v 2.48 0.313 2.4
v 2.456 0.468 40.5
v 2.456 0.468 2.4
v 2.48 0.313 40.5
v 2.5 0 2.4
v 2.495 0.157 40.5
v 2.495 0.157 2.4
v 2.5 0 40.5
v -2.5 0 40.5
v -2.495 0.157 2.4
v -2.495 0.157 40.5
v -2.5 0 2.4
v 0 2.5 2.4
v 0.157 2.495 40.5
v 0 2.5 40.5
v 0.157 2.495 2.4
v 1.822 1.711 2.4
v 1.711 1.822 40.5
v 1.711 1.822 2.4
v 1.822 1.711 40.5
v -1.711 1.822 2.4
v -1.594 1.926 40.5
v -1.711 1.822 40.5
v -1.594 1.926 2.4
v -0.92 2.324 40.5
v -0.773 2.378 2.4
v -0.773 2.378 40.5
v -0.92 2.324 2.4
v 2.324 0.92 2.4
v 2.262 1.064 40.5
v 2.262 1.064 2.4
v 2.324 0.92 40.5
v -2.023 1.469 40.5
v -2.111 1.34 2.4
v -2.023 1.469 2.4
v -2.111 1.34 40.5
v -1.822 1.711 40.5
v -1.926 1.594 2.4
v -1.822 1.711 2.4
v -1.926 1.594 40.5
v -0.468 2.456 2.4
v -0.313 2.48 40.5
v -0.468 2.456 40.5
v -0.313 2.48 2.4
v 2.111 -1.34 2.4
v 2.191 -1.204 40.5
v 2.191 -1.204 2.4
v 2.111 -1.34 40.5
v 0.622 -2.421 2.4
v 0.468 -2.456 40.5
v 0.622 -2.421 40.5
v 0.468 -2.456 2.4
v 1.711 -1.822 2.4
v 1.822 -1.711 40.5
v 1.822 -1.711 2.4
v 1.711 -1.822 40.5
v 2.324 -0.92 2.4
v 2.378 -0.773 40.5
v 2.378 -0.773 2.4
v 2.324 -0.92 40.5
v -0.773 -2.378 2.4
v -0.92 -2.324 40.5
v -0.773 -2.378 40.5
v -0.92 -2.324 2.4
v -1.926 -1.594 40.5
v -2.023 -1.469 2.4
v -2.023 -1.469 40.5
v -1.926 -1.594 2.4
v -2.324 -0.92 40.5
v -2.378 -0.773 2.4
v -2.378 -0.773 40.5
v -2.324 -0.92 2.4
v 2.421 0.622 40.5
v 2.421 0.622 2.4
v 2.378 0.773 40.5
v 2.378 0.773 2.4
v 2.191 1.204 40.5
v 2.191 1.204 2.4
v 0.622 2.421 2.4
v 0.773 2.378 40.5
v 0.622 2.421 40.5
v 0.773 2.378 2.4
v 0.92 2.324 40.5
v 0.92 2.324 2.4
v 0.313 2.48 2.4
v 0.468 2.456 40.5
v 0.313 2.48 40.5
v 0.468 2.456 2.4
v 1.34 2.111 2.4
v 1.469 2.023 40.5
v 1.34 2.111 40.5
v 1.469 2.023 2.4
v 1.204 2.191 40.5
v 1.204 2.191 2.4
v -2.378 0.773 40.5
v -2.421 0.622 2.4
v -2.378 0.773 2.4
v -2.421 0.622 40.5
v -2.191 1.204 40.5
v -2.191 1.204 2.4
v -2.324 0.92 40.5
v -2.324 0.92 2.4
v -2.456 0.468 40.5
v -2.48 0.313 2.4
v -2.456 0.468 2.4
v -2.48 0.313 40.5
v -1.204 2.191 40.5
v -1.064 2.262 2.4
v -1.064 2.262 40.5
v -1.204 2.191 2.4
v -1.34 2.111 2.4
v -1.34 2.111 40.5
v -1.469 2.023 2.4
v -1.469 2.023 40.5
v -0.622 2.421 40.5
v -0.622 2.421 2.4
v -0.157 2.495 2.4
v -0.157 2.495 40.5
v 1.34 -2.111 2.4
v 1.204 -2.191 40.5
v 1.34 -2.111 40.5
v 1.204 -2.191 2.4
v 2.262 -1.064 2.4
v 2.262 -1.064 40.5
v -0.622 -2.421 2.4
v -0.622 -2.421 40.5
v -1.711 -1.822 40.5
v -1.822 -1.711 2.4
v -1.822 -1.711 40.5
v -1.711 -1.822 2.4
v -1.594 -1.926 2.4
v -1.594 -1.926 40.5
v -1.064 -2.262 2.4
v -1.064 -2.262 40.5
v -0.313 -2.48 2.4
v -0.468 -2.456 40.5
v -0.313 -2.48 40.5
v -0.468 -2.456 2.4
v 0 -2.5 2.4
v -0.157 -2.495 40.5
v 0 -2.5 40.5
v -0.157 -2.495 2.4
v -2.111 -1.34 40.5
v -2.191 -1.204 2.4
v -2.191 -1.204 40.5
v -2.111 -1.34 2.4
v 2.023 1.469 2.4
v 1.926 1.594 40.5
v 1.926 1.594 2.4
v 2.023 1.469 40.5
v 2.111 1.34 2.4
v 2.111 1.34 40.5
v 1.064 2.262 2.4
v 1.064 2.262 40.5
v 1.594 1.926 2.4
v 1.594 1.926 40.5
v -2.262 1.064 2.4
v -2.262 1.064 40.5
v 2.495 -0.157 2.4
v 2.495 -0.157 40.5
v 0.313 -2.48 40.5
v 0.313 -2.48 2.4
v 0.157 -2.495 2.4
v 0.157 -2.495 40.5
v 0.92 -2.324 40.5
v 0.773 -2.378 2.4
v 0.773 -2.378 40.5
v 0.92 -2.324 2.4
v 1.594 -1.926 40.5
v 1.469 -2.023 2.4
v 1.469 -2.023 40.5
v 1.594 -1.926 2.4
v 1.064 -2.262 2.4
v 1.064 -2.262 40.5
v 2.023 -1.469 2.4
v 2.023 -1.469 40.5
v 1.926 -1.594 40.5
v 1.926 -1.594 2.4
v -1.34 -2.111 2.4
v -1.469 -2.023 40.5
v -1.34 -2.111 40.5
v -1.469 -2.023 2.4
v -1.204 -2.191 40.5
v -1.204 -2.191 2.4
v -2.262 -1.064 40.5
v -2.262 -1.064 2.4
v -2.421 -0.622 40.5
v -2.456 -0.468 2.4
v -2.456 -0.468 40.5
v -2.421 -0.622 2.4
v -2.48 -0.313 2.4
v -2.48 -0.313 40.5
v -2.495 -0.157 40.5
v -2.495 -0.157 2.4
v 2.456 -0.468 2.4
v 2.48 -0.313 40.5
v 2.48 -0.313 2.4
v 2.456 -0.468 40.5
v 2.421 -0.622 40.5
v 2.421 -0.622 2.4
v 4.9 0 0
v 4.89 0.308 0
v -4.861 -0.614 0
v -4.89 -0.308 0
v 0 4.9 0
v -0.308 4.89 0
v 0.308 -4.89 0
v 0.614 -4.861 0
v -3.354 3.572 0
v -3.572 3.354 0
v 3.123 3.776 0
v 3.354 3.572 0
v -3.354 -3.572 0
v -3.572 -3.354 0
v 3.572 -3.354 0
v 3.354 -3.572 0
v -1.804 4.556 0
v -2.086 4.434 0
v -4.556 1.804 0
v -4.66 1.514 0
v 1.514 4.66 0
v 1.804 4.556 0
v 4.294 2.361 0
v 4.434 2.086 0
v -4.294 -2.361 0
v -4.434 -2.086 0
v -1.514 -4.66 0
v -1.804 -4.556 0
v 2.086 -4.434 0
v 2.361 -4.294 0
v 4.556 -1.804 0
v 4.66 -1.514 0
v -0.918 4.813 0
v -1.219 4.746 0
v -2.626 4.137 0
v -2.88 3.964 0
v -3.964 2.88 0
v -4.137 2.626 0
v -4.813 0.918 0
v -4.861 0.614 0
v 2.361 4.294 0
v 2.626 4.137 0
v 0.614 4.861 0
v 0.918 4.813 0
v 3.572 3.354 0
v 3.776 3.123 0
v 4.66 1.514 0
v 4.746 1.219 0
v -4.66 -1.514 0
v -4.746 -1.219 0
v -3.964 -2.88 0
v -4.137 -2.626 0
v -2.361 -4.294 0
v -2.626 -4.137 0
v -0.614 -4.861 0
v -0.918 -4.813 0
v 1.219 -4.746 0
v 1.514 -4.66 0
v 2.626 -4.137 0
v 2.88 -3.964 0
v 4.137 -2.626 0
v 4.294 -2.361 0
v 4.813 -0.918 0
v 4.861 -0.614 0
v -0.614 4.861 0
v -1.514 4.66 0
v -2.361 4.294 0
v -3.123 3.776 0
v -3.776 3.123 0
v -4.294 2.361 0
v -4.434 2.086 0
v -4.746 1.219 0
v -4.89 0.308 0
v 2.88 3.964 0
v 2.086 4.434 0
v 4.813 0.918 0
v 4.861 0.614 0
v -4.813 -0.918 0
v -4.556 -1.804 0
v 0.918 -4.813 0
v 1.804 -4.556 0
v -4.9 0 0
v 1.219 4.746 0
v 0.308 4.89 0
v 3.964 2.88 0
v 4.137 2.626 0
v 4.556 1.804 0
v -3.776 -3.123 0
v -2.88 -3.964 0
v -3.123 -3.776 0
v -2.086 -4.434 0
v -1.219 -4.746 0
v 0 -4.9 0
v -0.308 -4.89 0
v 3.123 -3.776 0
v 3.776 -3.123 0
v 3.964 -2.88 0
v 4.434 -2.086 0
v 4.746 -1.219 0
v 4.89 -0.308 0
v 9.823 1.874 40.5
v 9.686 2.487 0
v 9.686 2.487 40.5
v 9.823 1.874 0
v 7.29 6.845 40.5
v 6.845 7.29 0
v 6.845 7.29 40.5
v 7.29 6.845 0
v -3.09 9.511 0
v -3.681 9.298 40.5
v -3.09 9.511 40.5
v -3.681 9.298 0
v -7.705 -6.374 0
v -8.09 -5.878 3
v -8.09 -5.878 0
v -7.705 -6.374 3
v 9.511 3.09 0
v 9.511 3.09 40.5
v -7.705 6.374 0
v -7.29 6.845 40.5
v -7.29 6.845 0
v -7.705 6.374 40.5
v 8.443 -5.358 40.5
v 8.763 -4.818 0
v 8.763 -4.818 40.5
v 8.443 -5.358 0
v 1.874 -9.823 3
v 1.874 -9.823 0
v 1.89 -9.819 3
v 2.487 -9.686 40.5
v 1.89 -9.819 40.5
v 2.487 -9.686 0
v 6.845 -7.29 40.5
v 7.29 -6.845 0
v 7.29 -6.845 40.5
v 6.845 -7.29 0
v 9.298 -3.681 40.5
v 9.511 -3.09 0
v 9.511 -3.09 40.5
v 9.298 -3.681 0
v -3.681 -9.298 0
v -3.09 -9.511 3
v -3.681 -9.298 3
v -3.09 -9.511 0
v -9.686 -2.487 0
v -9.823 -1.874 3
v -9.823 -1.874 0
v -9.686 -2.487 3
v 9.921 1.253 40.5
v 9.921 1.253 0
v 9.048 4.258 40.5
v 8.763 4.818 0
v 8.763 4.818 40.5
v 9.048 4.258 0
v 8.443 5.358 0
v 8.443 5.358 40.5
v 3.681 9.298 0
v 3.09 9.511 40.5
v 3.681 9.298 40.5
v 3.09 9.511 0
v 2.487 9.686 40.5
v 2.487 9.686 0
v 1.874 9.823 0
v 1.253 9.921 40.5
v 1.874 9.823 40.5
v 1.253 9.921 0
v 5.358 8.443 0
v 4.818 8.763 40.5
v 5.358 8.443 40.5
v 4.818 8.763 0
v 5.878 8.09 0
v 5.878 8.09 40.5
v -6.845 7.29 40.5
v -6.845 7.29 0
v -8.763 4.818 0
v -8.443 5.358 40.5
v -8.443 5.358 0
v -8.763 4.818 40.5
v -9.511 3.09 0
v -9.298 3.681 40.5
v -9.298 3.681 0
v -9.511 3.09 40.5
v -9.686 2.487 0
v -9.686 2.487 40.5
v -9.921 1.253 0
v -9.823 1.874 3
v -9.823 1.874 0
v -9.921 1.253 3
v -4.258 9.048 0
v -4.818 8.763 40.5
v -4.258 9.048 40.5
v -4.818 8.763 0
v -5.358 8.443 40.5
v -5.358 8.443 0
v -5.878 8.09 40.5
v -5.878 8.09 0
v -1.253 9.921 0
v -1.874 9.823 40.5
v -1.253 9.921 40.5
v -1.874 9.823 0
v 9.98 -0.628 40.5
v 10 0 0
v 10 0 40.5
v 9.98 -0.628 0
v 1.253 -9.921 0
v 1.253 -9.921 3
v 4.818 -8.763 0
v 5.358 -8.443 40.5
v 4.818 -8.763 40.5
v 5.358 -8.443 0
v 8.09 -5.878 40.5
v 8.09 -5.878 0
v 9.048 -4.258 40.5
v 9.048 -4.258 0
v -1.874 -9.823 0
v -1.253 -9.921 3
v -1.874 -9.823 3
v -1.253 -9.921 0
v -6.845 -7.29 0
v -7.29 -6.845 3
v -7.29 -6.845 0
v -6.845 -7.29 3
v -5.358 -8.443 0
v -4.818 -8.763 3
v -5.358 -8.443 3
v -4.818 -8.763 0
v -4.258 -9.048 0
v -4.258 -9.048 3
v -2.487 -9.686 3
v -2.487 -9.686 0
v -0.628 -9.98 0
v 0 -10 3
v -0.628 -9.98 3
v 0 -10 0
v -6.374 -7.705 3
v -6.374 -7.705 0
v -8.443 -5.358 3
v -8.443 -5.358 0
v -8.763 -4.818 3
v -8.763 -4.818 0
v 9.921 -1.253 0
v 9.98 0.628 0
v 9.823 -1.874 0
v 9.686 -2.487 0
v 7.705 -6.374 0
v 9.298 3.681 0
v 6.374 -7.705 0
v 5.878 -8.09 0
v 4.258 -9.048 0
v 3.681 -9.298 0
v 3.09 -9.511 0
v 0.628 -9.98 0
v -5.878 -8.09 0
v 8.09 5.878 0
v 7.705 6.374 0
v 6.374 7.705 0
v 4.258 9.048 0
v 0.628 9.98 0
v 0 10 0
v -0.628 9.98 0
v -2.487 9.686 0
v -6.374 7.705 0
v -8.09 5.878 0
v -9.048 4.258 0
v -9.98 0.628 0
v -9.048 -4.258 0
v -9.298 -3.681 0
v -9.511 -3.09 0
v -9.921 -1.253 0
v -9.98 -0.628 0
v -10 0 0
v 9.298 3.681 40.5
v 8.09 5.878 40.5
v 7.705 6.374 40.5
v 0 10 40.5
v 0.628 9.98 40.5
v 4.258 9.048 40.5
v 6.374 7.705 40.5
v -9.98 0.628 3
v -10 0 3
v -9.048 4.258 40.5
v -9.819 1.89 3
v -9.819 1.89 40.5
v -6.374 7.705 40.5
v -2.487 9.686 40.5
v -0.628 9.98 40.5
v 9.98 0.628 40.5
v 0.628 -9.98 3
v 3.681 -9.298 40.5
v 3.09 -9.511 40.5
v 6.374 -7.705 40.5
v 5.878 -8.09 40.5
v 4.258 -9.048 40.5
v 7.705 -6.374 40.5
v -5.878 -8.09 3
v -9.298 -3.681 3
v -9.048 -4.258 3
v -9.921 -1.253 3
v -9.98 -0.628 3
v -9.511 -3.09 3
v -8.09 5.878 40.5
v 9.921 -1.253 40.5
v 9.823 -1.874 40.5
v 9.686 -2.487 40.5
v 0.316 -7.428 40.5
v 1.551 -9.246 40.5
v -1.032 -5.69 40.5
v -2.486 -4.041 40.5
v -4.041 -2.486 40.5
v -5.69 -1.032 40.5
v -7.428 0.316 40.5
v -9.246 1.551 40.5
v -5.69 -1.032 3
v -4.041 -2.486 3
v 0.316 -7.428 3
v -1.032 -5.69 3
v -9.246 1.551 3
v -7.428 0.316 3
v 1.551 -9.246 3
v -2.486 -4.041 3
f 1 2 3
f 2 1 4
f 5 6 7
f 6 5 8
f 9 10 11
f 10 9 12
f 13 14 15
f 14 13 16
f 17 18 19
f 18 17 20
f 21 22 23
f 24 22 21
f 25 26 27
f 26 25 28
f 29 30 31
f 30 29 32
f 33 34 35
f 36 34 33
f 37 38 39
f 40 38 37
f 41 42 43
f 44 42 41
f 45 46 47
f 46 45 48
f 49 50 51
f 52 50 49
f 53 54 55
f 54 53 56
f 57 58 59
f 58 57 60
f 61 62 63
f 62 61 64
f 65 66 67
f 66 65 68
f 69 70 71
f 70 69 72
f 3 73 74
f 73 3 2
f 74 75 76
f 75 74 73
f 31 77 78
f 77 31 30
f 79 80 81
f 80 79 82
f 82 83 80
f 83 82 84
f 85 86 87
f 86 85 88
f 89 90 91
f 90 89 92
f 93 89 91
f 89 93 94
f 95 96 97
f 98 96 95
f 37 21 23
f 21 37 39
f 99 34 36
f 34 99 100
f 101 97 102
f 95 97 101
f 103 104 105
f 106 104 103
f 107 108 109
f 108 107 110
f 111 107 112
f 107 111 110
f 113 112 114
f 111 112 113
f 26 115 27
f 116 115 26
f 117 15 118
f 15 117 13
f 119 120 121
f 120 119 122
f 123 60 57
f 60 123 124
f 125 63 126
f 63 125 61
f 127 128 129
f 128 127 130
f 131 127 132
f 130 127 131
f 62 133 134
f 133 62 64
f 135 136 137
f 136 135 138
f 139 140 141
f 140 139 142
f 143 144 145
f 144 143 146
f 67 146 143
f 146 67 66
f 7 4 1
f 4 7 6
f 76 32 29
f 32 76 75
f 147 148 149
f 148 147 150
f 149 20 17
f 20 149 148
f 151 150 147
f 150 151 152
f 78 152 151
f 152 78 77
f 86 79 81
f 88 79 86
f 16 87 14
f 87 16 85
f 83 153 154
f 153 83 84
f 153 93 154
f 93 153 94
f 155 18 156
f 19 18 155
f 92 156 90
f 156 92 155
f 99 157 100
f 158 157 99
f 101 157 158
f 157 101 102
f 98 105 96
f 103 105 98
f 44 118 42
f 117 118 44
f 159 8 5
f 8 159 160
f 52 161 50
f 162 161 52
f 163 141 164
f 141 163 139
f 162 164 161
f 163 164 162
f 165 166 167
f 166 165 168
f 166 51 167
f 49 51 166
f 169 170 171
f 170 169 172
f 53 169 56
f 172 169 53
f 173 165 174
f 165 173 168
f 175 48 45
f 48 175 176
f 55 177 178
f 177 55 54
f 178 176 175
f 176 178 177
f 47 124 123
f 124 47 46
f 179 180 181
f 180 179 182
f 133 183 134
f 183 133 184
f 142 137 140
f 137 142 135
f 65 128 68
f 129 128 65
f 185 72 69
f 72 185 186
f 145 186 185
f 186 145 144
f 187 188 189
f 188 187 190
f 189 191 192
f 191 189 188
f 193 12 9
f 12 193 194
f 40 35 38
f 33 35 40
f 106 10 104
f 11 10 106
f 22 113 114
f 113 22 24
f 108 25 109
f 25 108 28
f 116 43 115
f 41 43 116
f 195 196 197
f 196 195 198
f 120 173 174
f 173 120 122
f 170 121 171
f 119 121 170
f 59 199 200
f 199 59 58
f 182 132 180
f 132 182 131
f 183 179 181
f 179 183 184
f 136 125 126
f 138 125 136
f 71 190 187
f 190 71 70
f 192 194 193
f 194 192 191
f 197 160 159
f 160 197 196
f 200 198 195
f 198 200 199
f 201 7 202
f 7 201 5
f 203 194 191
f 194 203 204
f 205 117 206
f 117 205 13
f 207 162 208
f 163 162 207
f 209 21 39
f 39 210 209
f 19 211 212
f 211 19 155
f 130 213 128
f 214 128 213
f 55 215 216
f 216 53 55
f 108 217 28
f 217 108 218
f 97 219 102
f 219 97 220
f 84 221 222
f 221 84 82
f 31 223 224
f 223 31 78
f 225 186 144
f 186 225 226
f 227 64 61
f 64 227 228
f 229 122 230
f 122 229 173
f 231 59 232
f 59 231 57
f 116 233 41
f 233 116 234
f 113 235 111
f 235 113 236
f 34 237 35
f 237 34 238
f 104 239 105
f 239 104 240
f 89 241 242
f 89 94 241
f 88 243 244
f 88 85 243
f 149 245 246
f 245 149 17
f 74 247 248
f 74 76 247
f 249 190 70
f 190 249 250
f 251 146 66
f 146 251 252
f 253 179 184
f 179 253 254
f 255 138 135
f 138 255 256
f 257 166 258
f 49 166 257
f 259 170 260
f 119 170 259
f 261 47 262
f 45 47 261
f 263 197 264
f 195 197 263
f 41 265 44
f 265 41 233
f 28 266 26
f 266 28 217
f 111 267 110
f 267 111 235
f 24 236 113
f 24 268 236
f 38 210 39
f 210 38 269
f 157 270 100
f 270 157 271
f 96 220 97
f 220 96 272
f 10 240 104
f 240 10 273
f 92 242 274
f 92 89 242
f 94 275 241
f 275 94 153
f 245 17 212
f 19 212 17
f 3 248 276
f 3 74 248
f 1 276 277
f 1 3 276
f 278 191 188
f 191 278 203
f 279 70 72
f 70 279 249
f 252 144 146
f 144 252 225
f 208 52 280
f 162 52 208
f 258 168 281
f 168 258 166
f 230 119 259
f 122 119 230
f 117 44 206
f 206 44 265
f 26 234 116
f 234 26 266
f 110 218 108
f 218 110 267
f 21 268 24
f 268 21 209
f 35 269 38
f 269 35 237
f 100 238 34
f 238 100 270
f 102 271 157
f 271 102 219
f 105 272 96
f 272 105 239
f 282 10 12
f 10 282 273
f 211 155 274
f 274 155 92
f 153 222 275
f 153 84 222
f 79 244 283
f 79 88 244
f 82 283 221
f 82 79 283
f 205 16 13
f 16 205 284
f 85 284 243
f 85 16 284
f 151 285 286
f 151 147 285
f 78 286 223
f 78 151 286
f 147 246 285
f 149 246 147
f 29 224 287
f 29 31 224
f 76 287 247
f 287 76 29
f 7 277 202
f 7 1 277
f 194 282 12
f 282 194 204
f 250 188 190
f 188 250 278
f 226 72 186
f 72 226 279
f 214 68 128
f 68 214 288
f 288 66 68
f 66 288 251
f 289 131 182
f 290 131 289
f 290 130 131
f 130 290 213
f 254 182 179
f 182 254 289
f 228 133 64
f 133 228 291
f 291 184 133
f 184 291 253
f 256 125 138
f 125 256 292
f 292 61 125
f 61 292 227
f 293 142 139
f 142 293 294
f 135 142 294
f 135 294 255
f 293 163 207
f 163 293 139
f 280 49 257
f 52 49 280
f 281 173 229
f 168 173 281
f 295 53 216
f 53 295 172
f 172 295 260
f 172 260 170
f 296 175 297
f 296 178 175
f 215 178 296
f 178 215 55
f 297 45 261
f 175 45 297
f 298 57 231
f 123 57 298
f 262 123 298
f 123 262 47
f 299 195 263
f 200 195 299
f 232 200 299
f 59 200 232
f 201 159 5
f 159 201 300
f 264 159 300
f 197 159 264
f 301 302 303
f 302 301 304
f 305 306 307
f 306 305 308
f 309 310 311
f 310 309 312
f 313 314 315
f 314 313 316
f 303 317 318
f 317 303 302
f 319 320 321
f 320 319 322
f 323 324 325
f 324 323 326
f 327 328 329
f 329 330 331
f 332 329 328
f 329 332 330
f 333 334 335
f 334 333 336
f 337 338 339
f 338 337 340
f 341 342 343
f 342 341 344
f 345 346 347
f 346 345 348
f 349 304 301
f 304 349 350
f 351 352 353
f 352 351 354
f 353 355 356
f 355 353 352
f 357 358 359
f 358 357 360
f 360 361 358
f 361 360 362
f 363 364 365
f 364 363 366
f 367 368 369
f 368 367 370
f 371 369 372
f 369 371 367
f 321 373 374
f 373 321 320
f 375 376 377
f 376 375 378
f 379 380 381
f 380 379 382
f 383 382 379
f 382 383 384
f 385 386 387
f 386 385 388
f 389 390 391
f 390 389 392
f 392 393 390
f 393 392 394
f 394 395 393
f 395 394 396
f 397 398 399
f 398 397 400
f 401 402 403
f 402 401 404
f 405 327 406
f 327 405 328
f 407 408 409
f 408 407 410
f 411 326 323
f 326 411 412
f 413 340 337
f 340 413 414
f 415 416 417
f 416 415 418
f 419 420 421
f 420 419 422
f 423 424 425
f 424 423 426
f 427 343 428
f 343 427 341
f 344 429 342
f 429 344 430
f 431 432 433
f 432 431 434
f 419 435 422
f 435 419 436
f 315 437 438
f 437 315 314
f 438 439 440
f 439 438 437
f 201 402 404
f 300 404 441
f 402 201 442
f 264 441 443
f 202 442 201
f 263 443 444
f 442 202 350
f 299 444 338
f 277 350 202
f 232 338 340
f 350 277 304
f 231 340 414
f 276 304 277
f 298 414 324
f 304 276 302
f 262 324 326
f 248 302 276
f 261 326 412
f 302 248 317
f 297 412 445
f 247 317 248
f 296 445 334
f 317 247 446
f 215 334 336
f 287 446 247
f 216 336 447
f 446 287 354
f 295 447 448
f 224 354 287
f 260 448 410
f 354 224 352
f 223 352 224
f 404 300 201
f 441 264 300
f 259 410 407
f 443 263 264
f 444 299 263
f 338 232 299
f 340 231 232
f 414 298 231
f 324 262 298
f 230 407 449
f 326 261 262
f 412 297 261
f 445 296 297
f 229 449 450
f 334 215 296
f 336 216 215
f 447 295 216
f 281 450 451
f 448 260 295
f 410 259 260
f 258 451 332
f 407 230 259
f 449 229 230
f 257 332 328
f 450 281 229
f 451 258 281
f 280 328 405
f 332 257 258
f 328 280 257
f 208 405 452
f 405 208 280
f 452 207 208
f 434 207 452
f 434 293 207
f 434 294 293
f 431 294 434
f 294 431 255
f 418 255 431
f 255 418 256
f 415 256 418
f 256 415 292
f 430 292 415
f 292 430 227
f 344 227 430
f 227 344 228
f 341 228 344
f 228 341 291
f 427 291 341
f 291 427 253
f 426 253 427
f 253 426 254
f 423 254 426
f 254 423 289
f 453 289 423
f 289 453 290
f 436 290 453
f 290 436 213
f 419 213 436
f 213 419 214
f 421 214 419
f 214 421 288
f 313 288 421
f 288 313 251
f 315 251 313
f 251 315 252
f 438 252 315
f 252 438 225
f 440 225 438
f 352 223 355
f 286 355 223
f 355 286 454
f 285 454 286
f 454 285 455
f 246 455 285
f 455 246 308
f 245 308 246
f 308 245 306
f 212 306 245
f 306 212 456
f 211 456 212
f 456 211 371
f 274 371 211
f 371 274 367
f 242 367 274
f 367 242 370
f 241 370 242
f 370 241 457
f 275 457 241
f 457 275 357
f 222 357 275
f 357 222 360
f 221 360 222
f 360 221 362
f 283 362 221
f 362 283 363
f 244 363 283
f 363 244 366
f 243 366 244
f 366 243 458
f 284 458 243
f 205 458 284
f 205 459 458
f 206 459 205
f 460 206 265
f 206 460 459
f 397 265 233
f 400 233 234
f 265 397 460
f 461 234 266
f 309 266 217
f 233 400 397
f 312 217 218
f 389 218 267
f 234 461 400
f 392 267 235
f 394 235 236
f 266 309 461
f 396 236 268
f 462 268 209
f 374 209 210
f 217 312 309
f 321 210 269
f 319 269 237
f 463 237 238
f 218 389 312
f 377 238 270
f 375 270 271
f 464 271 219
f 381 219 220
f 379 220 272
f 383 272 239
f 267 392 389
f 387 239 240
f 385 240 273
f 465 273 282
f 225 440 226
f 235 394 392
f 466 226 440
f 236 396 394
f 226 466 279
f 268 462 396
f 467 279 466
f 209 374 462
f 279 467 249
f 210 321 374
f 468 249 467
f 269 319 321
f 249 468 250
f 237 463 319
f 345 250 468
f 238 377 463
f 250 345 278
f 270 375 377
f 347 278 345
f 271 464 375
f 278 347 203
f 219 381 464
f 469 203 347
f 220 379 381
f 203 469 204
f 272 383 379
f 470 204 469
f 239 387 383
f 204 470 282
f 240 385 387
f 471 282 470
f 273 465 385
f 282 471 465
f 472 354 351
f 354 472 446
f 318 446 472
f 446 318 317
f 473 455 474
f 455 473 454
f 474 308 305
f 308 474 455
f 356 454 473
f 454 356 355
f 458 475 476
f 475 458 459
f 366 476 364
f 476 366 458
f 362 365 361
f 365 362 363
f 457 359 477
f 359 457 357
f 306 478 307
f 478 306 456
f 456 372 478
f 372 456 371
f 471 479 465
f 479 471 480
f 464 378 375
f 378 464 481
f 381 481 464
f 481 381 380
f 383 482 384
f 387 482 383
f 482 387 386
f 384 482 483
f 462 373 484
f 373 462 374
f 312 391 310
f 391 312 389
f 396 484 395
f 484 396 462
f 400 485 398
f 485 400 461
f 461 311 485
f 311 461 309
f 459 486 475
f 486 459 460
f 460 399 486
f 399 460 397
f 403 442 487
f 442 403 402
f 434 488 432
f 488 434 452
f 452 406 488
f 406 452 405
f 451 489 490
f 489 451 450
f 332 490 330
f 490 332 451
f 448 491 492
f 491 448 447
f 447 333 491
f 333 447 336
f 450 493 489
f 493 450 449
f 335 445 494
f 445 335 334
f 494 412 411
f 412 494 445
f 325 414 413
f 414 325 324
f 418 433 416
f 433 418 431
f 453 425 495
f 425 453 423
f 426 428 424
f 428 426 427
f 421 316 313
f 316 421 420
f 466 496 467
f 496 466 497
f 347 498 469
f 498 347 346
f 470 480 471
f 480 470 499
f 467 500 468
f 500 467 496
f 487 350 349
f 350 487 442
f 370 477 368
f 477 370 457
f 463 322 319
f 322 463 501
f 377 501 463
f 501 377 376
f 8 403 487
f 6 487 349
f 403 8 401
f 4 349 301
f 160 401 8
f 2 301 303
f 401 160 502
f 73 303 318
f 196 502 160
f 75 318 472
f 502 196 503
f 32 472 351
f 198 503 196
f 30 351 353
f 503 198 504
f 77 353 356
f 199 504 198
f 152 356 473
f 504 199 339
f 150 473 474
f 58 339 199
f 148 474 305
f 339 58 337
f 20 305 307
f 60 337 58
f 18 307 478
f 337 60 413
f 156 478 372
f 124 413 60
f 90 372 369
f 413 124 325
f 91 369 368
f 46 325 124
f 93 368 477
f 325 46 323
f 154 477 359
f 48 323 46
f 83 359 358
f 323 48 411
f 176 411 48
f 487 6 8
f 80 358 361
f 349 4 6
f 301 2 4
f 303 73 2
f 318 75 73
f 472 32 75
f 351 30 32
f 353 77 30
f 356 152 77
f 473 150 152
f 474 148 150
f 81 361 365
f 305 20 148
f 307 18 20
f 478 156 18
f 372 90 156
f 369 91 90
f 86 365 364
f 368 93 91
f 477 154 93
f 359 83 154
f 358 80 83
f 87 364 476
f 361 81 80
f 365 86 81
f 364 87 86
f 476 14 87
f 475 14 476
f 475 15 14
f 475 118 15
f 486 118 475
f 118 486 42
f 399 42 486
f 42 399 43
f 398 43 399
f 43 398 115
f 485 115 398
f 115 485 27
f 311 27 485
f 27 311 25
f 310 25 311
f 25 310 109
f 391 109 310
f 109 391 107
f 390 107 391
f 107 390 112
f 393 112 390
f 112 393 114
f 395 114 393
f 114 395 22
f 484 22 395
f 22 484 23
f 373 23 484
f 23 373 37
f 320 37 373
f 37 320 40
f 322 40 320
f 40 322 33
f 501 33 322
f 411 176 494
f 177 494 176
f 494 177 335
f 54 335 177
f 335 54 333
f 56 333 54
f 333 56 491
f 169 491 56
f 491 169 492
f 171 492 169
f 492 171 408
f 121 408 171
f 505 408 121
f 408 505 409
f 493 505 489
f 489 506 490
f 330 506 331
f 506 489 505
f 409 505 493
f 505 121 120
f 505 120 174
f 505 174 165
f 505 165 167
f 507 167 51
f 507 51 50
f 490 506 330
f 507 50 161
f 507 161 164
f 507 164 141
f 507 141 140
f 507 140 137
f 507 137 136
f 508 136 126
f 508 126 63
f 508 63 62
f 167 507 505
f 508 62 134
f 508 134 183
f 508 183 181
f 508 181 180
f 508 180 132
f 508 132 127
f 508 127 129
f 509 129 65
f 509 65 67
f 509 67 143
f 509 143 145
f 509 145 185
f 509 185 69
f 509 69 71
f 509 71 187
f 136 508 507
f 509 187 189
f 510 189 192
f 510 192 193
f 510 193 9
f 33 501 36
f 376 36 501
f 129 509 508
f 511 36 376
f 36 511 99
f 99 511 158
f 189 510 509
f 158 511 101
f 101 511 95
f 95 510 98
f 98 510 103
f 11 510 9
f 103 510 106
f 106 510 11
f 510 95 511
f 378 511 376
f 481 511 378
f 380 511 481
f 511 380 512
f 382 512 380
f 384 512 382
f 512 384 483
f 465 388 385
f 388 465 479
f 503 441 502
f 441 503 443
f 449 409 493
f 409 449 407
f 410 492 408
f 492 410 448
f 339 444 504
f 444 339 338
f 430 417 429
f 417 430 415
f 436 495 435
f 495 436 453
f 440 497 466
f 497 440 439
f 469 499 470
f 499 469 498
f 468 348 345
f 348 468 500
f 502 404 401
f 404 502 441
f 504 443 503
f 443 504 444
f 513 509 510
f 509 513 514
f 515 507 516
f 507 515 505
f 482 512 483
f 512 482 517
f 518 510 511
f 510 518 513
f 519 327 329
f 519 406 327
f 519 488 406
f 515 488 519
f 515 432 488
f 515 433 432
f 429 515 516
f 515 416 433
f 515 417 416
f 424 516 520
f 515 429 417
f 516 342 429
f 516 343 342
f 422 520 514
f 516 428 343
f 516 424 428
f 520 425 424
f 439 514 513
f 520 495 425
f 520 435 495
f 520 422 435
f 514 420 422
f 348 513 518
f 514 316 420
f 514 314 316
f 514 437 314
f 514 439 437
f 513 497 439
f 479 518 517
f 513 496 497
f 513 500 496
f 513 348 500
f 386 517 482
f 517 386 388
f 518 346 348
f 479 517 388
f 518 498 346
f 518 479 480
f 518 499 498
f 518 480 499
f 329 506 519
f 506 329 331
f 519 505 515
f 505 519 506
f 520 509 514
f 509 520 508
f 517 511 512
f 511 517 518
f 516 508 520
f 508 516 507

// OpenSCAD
r = 35;
h = 40.5;
hole = 2.5;
countersink = 5;
e=.1;
off=7-r;
$fn=100;
difference(){
        cylinder(r=10, h=h);
        translate([0,0,-e]){
            cylinder(r=hole, h=h+e+e);
            cylinder(countersink, countersink, 0);
        };
        translate([off, off, 3]) 
            cylinder(r=r, h=h );
}
